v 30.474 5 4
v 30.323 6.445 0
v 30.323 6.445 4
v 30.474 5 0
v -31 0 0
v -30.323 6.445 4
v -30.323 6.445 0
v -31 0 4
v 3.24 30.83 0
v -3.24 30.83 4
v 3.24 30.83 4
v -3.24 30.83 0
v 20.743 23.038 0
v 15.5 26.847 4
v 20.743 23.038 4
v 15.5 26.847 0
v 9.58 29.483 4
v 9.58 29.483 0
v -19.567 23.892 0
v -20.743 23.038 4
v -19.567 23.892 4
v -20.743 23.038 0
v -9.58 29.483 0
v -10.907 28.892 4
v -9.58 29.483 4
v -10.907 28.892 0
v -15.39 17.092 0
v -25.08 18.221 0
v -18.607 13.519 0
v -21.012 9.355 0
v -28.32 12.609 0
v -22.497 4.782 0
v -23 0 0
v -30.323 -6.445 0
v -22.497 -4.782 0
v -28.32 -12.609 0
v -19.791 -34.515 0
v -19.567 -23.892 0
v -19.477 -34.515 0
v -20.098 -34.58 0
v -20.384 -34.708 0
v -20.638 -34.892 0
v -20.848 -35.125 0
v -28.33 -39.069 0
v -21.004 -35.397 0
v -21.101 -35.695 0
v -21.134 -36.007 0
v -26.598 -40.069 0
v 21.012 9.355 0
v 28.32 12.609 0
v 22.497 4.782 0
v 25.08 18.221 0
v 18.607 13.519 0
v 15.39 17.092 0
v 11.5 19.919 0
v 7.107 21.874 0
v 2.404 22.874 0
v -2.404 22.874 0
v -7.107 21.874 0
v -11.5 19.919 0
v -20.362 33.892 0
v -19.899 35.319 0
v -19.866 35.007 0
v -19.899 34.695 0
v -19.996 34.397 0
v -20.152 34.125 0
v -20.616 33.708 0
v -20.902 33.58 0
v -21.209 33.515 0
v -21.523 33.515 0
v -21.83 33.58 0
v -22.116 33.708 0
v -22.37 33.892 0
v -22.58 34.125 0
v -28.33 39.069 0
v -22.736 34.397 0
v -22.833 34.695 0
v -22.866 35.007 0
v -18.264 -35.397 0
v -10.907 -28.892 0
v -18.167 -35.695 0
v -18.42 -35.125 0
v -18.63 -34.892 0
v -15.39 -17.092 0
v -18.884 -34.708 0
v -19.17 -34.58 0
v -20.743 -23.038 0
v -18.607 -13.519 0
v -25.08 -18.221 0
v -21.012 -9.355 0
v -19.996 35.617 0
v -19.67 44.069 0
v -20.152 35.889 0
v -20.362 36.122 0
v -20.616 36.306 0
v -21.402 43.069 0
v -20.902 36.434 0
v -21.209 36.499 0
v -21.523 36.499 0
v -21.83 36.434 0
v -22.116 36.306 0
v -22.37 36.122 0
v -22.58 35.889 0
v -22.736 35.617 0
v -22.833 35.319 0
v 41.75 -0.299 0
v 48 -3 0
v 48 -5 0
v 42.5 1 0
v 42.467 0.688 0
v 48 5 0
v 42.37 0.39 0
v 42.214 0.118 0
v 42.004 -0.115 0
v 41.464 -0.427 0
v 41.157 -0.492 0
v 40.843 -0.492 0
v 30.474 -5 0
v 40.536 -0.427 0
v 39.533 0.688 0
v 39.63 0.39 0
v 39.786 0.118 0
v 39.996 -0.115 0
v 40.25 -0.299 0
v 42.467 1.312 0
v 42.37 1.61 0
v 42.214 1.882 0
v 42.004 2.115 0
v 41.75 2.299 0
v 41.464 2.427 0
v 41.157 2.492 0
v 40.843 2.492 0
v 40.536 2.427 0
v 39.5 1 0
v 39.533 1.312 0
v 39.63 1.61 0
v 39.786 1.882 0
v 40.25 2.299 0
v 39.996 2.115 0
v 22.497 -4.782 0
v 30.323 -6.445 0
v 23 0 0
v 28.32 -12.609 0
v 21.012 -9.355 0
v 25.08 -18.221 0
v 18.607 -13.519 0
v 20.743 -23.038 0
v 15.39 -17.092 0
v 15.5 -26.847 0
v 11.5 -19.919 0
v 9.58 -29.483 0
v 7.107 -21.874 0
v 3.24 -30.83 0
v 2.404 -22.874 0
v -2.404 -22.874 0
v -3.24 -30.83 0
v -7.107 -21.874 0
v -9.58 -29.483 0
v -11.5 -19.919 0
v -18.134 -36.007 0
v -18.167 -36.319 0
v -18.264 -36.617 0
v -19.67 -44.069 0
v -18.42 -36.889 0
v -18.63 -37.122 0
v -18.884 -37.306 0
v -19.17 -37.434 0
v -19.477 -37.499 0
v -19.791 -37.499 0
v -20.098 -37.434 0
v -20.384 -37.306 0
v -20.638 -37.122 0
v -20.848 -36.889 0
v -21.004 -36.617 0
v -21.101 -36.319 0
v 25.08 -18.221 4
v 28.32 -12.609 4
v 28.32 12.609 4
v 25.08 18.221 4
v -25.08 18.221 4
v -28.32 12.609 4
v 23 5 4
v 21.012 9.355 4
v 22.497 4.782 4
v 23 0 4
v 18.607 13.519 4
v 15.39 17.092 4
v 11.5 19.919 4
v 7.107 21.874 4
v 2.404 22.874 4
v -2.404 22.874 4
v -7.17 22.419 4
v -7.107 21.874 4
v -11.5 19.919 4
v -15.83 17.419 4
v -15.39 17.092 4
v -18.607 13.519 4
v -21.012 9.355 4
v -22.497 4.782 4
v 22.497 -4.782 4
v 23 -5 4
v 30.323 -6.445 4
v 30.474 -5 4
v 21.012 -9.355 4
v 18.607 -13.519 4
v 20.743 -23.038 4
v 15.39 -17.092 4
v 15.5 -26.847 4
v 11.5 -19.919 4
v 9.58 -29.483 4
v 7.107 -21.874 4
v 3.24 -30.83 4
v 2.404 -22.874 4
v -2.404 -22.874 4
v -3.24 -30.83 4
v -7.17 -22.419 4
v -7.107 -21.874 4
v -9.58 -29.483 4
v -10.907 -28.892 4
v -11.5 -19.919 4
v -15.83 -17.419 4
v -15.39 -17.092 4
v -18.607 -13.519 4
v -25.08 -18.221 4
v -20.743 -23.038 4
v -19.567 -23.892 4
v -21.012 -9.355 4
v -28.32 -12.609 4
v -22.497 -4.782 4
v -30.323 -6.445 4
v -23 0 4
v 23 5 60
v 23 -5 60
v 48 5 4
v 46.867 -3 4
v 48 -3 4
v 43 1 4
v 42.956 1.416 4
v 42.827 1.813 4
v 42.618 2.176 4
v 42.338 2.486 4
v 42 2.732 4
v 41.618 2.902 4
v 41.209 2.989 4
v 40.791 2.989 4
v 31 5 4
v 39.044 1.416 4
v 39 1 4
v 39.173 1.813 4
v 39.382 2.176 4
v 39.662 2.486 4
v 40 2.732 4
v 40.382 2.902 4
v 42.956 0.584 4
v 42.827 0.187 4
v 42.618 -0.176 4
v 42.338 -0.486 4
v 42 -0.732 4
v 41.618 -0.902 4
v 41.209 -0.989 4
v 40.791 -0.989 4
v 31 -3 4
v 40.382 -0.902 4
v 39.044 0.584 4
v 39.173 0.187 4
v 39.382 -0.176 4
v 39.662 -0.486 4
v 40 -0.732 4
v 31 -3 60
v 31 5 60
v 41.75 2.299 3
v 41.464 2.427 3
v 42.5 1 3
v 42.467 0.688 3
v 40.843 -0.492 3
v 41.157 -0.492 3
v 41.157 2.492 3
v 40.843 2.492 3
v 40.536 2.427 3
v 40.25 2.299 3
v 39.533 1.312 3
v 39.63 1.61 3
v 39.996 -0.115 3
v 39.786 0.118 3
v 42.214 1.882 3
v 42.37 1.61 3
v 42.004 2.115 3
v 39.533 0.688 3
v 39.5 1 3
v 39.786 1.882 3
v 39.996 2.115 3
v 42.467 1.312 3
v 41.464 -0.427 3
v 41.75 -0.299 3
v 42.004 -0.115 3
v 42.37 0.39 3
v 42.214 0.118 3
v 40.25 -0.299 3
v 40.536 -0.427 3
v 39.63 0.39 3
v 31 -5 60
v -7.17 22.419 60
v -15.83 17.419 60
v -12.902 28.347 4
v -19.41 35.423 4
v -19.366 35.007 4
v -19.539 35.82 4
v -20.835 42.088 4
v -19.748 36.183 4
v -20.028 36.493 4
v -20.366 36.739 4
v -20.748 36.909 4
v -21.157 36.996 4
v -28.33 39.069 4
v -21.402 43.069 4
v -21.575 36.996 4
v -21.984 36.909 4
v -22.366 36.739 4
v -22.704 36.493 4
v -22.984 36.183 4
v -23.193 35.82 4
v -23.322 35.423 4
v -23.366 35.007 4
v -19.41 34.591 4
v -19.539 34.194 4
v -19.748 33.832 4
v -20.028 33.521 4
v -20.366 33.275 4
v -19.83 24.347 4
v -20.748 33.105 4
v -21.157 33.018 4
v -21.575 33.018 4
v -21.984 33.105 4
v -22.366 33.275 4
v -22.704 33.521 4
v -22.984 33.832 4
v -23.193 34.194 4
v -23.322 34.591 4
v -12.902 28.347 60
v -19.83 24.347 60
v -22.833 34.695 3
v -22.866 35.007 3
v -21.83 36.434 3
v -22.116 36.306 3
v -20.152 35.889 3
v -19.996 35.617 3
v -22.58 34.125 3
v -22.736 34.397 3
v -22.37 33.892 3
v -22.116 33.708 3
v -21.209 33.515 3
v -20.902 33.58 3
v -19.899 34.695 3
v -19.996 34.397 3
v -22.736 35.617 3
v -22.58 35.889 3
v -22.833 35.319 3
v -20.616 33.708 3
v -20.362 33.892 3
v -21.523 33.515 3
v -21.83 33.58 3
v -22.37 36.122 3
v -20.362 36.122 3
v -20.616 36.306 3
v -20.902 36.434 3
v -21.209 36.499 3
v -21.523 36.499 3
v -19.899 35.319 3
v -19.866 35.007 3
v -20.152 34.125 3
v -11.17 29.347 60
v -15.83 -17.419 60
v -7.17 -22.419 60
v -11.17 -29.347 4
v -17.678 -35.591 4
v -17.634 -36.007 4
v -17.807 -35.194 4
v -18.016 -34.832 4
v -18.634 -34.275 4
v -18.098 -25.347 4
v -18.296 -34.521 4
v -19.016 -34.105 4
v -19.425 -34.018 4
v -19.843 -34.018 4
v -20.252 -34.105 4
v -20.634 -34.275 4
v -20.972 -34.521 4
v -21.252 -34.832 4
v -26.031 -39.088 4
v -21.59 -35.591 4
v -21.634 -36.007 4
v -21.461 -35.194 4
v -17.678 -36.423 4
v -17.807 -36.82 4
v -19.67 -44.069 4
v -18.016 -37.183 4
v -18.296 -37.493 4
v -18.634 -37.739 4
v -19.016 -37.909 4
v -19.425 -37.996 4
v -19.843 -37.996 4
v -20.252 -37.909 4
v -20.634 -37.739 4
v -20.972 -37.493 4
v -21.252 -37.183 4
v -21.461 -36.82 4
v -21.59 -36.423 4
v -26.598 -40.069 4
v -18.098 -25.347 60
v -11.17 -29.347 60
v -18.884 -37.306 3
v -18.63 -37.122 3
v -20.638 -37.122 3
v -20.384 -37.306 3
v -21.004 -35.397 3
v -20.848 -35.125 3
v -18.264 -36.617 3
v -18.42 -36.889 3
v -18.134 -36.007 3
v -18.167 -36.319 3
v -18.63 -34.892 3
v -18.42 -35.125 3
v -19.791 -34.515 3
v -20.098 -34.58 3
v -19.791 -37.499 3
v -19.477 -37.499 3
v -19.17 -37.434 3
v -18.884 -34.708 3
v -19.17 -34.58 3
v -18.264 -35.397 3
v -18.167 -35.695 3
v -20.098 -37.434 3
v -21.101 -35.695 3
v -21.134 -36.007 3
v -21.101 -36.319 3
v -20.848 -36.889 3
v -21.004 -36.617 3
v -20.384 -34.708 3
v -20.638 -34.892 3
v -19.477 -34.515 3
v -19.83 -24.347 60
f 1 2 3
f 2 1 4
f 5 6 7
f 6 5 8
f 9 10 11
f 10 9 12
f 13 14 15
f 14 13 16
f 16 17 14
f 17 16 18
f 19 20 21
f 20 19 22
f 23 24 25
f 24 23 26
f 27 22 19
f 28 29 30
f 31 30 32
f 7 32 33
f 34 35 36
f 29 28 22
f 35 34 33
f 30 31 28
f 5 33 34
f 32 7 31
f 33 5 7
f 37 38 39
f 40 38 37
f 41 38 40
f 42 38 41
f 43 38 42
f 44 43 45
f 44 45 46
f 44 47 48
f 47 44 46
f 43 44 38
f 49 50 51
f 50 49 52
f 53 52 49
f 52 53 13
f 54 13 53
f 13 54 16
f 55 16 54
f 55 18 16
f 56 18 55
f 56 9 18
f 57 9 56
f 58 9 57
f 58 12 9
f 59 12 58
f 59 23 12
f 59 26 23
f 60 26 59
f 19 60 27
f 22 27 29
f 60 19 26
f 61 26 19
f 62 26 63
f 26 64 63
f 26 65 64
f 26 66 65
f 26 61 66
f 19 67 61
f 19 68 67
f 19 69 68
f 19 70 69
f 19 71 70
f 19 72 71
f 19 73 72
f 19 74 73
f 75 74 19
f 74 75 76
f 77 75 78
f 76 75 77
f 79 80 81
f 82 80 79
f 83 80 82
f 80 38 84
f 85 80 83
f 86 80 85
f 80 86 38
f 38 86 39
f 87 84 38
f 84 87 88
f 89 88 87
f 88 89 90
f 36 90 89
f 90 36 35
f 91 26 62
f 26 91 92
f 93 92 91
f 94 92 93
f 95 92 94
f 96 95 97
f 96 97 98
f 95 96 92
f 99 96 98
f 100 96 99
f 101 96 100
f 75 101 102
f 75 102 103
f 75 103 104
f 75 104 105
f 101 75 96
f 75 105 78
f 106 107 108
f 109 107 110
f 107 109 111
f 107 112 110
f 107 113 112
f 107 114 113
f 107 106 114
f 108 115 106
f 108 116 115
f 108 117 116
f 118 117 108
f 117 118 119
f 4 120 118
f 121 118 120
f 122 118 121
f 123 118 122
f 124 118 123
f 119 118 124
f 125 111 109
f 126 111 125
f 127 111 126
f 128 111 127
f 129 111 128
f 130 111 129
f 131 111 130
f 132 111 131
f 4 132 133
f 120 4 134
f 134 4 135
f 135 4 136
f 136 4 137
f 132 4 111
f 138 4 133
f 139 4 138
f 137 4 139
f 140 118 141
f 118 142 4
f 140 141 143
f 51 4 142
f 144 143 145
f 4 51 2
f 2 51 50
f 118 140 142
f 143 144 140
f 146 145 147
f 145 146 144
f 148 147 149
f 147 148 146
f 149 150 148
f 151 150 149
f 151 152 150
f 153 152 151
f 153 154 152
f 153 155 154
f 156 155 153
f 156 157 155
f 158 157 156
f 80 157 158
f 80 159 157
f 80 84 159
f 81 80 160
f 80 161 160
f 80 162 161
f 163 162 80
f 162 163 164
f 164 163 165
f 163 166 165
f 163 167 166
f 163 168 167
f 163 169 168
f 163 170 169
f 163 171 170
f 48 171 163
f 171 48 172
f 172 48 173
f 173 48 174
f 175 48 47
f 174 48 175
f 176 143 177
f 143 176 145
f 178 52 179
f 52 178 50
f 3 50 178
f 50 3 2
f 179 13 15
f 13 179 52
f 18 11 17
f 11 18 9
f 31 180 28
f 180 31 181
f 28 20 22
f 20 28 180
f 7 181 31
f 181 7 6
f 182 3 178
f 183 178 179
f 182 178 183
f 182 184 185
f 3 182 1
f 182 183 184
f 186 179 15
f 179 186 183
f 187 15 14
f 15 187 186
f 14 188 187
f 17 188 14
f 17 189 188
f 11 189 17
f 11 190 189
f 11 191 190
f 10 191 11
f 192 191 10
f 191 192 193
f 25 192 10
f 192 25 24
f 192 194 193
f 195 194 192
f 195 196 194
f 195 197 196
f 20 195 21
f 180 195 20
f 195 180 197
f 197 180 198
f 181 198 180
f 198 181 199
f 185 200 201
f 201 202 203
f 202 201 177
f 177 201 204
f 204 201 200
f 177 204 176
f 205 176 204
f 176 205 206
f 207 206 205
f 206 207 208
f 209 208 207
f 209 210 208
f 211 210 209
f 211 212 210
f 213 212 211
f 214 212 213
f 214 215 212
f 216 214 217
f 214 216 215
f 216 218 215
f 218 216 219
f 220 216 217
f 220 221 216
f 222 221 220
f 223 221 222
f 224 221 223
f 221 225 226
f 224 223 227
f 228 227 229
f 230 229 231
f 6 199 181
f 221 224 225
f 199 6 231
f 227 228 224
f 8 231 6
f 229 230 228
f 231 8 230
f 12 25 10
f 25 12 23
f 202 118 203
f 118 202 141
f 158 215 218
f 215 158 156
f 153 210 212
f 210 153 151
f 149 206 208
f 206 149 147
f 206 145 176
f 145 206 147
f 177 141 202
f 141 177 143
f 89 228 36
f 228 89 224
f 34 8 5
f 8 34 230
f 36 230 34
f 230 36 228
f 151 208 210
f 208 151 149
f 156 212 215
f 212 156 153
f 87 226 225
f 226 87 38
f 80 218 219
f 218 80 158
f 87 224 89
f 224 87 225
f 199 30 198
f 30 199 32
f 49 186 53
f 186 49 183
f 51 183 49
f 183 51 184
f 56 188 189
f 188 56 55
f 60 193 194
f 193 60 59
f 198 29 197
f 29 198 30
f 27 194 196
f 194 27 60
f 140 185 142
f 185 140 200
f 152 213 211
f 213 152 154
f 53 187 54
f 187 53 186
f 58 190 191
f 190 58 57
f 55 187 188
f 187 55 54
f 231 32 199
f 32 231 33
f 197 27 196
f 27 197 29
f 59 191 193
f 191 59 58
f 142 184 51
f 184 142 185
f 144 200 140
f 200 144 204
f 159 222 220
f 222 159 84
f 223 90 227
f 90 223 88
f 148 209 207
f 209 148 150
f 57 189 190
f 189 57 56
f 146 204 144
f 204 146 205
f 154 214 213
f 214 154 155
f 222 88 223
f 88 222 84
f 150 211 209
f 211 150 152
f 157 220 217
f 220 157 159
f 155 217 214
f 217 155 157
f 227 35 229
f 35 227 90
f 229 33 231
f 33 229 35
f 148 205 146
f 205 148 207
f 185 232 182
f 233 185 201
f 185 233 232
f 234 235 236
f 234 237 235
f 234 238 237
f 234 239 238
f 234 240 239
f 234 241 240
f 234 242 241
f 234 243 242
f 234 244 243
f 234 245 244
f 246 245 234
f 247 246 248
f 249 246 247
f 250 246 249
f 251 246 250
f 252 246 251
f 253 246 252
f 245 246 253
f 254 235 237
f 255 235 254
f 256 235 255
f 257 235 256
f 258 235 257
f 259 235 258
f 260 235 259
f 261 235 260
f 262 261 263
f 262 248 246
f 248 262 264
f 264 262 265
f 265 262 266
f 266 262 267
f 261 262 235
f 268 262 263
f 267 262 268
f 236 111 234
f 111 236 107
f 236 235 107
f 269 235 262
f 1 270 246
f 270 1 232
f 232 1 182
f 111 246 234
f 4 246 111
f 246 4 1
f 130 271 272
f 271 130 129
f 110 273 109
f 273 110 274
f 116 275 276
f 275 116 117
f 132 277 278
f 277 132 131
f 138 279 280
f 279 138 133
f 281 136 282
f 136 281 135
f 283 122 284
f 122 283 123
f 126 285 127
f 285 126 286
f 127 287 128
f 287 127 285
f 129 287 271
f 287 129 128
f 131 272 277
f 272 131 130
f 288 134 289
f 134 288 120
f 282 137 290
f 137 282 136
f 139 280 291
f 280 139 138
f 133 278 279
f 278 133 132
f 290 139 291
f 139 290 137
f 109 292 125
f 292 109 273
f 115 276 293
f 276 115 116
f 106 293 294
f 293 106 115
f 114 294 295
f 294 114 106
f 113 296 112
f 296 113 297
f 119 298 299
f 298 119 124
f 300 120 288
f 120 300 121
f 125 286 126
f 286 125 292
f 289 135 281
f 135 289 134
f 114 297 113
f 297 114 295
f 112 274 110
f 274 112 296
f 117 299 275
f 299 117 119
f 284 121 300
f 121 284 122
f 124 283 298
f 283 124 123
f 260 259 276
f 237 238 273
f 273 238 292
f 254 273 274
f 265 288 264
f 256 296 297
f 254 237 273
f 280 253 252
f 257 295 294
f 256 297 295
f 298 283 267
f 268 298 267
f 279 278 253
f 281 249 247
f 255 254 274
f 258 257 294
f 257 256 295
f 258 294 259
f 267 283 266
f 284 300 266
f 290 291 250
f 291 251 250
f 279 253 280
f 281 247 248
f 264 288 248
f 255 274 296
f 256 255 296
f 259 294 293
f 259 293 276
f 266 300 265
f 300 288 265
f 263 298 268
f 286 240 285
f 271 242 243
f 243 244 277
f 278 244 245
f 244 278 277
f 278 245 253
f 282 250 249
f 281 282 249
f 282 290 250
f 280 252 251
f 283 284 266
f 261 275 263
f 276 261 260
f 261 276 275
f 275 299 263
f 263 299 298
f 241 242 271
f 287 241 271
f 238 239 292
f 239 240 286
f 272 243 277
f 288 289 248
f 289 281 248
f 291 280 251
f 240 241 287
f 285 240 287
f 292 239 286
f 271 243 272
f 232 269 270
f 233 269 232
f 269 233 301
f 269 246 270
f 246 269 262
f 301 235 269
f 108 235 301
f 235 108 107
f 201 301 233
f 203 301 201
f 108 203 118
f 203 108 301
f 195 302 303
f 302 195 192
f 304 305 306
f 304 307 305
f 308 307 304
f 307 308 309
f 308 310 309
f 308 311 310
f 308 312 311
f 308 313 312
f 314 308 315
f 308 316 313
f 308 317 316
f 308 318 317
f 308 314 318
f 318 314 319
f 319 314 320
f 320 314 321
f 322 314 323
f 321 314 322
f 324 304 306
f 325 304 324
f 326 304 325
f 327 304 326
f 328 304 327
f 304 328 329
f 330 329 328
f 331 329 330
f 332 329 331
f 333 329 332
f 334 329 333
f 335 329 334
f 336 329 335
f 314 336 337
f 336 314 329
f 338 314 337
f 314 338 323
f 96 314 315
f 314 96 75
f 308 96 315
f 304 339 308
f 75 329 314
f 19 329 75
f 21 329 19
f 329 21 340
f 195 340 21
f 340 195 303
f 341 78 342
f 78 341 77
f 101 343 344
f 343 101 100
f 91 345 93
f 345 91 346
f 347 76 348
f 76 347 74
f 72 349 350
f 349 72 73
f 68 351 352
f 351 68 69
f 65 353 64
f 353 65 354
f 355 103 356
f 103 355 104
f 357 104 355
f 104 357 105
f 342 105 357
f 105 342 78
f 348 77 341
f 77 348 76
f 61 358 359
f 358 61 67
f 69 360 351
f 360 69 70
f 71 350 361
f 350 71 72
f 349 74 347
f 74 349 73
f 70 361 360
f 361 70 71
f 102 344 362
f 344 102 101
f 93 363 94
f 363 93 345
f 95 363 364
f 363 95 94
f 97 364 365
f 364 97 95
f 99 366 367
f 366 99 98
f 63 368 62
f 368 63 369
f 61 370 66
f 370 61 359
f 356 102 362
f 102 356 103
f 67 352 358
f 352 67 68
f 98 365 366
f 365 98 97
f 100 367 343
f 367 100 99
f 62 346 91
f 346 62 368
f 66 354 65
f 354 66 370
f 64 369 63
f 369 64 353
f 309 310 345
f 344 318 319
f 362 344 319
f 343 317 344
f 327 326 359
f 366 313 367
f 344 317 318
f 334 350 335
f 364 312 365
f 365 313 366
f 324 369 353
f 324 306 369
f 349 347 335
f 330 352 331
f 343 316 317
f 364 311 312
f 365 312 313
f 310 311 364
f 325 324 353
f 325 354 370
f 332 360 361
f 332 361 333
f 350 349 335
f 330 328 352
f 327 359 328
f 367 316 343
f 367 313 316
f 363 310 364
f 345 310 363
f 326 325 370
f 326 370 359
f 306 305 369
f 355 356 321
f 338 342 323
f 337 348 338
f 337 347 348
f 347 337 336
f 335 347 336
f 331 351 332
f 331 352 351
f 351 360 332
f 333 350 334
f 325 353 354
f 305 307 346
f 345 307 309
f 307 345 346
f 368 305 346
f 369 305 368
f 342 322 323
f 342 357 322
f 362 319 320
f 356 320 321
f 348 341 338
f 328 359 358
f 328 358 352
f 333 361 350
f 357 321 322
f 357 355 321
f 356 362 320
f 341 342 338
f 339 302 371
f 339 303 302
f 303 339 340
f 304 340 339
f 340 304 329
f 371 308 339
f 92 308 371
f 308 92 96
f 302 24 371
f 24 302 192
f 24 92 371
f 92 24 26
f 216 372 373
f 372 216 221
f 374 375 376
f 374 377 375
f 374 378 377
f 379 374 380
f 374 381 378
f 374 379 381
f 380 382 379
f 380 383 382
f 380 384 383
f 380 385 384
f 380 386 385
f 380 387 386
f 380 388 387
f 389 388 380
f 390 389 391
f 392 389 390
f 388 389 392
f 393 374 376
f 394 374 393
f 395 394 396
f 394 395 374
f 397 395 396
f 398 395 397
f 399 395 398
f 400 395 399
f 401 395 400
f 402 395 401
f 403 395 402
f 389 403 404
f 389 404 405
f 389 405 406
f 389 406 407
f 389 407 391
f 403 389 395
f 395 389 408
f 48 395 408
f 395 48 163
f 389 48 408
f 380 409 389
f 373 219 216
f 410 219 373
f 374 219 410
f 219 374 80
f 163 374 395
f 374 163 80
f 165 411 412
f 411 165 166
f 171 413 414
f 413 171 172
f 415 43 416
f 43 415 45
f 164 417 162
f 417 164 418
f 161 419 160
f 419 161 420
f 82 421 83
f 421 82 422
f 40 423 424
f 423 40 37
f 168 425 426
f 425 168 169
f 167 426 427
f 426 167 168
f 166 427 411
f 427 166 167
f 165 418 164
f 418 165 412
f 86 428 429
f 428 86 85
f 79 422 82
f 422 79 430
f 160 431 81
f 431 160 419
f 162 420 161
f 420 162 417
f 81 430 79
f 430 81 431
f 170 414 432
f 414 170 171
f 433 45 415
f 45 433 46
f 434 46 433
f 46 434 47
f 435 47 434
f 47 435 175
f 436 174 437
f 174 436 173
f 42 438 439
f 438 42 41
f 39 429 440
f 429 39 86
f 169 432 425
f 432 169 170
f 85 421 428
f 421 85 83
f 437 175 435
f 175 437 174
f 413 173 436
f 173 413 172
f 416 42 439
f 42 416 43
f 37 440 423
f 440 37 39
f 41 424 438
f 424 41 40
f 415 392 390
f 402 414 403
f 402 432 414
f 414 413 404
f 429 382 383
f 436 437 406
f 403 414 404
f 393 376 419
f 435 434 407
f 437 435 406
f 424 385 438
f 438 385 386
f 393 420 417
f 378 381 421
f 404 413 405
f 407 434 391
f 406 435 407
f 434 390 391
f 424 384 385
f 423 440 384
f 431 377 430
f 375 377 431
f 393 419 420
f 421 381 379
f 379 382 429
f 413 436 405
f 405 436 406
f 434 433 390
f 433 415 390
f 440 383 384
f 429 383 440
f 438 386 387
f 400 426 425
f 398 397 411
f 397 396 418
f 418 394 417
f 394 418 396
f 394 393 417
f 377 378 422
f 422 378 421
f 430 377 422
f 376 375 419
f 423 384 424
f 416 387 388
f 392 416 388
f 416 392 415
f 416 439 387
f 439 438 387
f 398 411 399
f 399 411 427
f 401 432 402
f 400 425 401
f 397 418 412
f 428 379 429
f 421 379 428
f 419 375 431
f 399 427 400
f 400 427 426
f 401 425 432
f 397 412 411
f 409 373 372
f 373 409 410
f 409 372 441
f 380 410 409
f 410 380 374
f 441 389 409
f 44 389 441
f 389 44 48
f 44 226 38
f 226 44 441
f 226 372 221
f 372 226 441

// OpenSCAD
$fn = 30;

PrumerMotoru = 46;

module drzak() {
    difference() {
        translate([0, 0, 0]) cube([25, 8, 4]);
        translate([18, 4, 0]) cylinder(r=1.5, h=4);
        #translate([18, 4, 3]) cylinder(r1=1.5, r2=2, h=1);
    }
    cube([8, 8, 60]);
    CubePoints = [
      [  0,  -2,  0 ],
      [ 25,  -2,  0 ],
      [ 25,  0,  0 ],
      [  0,  0,  0 ],
      [  0,  -2,  60 ],
      [ 8,  -2,  60 ],
      [ 8,  0,  60 ],
      [  0,  0,  60 ]];      
    CubeFaces = [
      [0,1,2,3],
      [4,5,1,0],
      [7,6,5,4],
      [5,6,2,1],
      [6,7,3,2],
      [7,4,0,3]];
      
    polyhedron( CubePoints, CubeFaces );
}
module drzaky() {
    translate([PrumerMotoru/2, -3, 0]) drzak();
    rotate([0, 0, 120]) translate([PrumerMotoru/2, -3, 0]) drzak();
    rotate([0, 0, 120*2]) translate([PrumerMotoru/2, -3, 0]) drzak();
}
drzaky();

difference() {
    cylinder(r=PrumerMotoru/2+8, h=4);
    #cylinder(r=PrumerMotoru/2, h=4);
}
